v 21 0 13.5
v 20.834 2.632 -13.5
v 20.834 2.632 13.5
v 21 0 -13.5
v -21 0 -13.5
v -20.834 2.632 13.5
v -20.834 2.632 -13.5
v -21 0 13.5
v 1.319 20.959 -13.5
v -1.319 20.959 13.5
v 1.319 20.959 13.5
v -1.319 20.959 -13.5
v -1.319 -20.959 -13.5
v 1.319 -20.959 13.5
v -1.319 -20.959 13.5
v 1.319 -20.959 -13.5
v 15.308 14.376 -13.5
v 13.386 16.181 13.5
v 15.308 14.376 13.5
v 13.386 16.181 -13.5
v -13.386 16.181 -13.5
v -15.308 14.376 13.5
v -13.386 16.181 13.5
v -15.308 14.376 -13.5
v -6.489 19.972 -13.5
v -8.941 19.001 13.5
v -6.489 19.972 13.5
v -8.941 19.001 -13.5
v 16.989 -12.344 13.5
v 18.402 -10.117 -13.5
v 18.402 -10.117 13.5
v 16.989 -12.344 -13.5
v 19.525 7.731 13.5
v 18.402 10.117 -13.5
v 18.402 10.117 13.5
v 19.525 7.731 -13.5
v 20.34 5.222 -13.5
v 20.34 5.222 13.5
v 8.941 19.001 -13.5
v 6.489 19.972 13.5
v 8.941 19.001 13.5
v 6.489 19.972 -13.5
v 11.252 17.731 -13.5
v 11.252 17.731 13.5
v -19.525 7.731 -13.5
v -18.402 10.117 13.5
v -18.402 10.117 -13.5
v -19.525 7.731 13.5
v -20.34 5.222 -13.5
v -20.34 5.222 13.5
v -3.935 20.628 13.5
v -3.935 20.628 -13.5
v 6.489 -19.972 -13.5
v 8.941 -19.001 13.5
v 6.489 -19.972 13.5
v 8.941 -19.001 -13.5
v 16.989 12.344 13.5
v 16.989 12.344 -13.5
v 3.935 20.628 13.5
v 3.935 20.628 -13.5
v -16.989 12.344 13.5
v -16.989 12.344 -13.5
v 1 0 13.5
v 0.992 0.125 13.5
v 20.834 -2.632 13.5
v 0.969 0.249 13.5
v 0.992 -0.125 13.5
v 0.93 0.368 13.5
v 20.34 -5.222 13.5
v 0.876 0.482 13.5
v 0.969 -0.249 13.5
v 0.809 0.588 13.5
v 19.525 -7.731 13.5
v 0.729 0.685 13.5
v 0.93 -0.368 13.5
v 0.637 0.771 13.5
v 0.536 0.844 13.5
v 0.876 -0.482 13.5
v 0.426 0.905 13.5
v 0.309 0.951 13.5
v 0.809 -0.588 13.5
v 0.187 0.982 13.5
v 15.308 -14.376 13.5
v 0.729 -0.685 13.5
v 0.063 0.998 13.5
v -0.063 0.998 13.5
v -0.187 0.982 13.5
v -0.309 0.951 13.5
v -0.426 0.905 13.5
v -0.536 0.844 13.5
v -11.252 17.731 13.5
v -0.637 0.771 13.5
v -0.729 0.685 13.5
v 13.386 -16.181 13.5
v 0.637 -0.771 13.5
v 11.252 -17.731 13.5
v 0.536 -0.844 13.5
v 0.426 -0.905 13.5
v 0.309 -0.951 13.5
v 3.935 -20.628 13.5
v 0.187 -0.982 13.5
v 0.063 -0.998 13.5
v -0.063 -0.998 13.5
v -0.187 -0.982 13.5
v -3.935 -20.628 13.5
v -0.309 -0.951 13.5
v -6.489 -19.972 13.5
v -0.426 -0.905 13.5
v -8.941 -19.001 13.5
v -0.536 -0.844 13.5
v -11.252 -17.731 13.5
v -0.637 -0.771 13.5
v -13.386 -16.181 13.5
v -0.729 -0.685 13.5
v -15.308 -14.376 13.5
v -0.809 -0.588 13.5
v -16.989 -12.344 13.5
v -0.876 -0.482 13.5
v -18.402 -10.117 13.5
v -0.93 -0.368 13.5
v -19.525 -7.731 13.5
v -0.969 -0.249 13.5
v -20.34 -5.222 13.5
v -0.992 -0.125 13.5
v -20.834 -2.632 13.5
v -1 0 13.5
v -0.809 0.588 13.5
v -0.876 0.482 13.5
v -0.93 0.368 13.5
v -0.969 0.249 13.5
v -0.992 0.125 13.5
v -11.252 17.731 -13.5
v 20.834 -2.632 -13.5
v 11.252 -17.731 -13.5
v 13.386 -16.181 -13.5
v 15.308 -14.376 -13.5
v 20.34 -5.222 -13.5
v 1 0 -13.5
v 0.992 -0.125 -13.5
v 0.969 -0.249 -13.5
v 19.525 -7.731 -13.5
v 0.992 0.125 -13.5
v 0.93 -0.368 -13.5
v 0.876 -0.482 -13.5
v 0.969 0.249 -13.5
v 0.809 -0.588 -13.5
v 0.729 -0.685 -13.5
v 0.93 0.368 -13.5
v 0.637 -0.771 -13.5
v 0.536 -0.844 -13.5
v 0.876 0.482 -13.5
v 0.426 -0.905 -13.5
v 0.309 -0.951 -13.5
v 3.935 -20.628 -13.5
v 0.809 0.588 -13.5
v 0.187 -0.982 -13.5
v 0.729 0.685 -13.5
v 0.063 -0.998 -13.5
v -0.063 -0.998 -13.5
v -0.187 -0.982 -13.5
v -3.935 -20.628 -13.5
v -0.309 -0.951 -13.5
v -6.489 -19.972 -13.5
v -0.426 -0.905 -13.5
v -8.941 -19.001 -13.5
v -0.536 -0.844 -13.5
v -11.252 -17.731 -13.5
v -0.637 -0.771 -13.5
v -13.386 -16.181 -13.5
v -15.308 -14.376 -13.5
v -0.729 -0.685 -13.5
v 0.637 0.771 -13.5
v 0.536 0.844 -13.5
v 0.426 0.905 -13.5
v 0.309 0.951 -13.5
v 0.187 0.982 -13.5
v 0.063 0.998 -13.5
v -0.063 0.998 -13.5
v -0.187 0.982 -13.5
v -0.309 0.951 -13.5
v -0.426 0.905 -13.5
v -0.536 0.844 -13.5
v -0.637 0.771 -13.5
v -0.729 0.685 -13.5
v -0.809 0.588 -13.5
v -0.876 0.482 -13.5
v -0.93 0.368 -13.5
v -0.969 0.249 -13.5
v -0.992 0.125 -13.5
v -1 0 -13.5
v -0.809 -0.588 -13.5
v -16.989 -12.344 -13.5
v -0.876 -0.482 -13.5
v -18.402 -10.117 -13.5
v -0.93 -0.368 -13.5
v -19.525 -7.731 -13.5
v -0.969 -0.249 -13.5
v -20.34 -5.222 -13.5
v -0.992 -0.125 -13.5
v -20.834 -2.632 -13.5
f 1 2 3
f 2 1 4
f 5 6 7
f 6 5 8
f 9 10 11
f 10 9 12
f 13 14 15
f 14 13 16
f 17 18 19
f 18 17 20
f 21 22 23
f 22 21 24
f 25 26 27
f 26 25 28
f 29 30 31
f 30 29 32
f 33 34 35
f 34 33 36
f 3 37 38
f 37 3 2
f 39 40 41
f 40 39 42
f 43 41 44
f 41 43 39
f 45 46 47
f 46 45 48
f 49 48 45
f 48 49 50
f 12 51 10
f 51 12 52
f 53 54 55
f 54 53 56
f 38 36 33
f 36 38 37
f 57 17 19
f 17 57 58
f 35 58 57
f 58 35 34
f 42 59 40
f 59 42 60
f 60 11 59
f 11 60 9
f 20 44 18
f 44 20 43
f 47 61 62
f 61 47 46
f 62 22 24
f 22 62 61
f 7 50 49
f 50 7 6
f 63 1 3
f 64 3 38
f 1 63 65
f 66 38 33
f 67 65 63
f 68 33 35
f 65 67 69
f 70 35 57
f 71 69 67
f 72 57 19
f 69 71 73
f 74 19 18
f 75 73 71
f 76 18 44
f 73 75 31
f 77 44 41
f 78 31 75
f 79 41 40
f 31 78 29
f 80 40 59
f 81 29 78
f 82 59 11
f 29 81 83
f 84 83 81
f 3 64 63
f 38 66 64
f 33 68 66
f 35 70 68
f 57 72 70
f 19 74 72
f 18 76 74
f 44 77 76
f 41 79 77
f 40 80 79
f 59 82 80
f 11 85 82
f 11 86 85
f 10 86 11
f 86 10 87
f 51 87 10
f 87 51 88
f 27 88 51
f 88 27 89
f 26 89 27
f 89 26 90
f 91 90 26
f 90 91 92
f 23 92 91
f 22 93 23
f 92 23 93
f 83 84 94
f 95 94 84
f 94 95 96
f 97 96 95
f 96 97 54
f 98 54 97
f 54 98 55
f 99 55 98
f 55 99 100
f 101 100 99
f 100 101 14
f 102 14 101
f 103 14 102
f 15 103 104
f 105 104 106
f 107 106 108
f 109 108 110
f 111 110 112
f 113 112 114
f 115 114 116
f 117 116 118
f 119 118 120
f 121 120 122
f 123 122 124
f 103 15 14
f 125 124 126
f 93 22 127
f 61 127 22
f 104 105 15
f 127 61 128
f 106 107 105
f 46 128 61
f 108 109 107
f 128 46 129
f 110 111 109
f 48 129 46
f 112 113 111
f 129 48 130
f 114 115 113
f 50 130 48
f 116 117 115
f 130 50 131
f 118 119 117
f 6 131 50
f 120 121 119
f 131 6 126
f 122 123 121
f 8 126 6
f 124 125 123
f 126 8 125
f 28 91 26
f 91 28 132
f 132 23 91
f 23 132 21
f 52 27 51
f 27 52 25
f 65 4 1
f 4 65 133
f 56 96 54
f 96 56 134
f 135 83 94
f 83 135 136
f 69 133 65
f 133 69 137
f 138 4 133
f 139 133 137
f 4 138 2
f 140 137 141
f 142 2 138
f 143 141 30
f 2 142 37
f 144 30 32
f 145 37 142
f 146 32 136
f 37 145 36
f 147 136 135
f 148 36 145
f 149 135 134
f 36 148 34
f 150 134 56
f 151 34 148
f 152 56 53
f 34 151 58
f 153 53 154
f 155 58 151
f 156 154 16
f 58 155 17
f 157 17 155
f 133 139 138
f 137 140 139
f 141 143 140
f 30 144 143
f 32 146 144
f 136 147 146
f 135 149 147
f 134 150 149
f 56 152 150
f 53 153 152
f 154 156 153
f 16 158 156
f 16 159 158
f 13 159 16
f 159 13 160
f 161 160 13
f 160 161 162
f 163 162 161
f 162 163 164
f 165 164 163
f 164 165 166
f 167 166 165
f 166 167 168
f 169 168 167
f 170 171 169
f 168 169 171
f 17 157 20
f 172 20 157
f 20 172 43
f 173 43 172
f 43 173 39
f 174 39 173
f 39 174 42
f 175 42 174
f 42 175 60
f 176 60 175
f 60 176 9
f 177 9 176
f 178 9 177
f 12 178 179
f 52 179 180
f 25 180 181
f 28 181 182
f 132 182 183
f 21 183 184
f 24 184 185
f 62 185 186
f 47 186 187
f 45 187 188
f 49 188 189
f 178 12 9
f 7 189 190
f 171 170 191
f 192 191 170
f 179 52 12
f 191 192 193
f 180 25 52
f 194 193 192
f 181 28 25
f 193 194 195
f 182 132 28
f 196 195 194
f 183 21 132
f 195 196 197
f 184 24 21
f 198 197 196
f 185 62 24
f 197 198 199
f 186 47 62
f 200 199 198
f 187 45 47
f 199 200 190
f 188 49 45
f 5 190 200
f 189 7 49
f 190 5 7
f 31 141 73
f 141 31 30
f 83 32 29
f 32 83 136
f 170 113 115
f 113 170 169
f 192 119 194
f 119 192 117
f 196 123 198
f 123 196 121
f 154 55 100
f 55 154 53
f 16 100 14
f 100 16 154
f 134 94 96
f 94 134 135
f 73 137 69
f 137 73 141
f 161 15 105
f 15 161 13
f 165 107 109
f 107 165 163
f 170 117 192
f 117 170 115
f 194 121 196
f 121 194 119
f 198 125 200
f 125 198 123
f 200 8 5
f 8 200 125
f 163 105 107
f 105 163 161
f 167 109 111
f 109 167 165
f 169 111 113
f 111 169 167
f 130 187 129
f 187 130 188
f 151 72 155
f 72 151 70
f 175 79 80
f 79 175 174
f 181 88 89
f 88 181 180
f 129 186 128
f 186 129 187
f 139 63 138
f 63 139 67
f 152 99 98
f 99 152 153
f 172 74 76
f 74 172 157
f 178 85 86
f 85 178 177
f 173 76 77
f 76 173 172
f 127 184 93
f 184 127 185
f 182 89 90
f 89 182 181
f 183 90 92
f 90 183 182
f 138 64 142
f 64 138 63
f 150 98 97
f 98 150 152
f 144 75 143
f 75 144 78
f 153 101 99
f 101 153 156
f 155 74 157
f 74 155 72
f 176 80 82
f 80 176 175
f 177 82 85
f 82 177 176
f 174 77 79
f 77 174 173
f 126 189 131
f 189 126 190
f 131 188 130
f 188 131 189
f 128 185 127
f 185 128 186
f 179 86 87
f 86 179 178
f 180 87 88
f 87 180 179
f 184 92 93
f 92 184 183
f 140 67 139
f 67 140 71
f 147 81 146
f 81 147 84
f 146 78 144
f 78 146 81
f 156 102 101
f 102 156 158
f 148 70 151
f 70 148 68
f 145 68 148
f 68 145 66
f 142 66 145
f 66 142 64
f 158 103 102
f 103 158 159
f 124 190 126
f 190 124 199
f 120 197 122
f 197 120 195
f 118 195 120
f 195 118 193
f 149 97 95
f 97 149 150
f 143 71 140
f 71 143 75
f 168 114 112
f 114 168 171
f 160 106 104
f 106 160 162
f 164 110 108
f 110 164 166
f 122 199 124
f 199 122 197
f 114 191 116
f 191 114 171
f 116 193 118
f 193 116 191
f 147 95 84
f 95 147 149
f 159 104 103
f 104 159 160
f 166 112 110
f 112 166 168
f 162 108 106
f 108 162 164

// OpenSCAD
$fn = 50;


difference() {
	union() {
		translate(v = [0, 0, -13.5000000000]) {
			cylinder(h = 27, r = 21.0000000000);
		}
	}
	union() {
		translate(v = [0, 0, -100.0000000000]) {
			cylinder(h = 200, r = 1.0000000000);
		}
	}
}
